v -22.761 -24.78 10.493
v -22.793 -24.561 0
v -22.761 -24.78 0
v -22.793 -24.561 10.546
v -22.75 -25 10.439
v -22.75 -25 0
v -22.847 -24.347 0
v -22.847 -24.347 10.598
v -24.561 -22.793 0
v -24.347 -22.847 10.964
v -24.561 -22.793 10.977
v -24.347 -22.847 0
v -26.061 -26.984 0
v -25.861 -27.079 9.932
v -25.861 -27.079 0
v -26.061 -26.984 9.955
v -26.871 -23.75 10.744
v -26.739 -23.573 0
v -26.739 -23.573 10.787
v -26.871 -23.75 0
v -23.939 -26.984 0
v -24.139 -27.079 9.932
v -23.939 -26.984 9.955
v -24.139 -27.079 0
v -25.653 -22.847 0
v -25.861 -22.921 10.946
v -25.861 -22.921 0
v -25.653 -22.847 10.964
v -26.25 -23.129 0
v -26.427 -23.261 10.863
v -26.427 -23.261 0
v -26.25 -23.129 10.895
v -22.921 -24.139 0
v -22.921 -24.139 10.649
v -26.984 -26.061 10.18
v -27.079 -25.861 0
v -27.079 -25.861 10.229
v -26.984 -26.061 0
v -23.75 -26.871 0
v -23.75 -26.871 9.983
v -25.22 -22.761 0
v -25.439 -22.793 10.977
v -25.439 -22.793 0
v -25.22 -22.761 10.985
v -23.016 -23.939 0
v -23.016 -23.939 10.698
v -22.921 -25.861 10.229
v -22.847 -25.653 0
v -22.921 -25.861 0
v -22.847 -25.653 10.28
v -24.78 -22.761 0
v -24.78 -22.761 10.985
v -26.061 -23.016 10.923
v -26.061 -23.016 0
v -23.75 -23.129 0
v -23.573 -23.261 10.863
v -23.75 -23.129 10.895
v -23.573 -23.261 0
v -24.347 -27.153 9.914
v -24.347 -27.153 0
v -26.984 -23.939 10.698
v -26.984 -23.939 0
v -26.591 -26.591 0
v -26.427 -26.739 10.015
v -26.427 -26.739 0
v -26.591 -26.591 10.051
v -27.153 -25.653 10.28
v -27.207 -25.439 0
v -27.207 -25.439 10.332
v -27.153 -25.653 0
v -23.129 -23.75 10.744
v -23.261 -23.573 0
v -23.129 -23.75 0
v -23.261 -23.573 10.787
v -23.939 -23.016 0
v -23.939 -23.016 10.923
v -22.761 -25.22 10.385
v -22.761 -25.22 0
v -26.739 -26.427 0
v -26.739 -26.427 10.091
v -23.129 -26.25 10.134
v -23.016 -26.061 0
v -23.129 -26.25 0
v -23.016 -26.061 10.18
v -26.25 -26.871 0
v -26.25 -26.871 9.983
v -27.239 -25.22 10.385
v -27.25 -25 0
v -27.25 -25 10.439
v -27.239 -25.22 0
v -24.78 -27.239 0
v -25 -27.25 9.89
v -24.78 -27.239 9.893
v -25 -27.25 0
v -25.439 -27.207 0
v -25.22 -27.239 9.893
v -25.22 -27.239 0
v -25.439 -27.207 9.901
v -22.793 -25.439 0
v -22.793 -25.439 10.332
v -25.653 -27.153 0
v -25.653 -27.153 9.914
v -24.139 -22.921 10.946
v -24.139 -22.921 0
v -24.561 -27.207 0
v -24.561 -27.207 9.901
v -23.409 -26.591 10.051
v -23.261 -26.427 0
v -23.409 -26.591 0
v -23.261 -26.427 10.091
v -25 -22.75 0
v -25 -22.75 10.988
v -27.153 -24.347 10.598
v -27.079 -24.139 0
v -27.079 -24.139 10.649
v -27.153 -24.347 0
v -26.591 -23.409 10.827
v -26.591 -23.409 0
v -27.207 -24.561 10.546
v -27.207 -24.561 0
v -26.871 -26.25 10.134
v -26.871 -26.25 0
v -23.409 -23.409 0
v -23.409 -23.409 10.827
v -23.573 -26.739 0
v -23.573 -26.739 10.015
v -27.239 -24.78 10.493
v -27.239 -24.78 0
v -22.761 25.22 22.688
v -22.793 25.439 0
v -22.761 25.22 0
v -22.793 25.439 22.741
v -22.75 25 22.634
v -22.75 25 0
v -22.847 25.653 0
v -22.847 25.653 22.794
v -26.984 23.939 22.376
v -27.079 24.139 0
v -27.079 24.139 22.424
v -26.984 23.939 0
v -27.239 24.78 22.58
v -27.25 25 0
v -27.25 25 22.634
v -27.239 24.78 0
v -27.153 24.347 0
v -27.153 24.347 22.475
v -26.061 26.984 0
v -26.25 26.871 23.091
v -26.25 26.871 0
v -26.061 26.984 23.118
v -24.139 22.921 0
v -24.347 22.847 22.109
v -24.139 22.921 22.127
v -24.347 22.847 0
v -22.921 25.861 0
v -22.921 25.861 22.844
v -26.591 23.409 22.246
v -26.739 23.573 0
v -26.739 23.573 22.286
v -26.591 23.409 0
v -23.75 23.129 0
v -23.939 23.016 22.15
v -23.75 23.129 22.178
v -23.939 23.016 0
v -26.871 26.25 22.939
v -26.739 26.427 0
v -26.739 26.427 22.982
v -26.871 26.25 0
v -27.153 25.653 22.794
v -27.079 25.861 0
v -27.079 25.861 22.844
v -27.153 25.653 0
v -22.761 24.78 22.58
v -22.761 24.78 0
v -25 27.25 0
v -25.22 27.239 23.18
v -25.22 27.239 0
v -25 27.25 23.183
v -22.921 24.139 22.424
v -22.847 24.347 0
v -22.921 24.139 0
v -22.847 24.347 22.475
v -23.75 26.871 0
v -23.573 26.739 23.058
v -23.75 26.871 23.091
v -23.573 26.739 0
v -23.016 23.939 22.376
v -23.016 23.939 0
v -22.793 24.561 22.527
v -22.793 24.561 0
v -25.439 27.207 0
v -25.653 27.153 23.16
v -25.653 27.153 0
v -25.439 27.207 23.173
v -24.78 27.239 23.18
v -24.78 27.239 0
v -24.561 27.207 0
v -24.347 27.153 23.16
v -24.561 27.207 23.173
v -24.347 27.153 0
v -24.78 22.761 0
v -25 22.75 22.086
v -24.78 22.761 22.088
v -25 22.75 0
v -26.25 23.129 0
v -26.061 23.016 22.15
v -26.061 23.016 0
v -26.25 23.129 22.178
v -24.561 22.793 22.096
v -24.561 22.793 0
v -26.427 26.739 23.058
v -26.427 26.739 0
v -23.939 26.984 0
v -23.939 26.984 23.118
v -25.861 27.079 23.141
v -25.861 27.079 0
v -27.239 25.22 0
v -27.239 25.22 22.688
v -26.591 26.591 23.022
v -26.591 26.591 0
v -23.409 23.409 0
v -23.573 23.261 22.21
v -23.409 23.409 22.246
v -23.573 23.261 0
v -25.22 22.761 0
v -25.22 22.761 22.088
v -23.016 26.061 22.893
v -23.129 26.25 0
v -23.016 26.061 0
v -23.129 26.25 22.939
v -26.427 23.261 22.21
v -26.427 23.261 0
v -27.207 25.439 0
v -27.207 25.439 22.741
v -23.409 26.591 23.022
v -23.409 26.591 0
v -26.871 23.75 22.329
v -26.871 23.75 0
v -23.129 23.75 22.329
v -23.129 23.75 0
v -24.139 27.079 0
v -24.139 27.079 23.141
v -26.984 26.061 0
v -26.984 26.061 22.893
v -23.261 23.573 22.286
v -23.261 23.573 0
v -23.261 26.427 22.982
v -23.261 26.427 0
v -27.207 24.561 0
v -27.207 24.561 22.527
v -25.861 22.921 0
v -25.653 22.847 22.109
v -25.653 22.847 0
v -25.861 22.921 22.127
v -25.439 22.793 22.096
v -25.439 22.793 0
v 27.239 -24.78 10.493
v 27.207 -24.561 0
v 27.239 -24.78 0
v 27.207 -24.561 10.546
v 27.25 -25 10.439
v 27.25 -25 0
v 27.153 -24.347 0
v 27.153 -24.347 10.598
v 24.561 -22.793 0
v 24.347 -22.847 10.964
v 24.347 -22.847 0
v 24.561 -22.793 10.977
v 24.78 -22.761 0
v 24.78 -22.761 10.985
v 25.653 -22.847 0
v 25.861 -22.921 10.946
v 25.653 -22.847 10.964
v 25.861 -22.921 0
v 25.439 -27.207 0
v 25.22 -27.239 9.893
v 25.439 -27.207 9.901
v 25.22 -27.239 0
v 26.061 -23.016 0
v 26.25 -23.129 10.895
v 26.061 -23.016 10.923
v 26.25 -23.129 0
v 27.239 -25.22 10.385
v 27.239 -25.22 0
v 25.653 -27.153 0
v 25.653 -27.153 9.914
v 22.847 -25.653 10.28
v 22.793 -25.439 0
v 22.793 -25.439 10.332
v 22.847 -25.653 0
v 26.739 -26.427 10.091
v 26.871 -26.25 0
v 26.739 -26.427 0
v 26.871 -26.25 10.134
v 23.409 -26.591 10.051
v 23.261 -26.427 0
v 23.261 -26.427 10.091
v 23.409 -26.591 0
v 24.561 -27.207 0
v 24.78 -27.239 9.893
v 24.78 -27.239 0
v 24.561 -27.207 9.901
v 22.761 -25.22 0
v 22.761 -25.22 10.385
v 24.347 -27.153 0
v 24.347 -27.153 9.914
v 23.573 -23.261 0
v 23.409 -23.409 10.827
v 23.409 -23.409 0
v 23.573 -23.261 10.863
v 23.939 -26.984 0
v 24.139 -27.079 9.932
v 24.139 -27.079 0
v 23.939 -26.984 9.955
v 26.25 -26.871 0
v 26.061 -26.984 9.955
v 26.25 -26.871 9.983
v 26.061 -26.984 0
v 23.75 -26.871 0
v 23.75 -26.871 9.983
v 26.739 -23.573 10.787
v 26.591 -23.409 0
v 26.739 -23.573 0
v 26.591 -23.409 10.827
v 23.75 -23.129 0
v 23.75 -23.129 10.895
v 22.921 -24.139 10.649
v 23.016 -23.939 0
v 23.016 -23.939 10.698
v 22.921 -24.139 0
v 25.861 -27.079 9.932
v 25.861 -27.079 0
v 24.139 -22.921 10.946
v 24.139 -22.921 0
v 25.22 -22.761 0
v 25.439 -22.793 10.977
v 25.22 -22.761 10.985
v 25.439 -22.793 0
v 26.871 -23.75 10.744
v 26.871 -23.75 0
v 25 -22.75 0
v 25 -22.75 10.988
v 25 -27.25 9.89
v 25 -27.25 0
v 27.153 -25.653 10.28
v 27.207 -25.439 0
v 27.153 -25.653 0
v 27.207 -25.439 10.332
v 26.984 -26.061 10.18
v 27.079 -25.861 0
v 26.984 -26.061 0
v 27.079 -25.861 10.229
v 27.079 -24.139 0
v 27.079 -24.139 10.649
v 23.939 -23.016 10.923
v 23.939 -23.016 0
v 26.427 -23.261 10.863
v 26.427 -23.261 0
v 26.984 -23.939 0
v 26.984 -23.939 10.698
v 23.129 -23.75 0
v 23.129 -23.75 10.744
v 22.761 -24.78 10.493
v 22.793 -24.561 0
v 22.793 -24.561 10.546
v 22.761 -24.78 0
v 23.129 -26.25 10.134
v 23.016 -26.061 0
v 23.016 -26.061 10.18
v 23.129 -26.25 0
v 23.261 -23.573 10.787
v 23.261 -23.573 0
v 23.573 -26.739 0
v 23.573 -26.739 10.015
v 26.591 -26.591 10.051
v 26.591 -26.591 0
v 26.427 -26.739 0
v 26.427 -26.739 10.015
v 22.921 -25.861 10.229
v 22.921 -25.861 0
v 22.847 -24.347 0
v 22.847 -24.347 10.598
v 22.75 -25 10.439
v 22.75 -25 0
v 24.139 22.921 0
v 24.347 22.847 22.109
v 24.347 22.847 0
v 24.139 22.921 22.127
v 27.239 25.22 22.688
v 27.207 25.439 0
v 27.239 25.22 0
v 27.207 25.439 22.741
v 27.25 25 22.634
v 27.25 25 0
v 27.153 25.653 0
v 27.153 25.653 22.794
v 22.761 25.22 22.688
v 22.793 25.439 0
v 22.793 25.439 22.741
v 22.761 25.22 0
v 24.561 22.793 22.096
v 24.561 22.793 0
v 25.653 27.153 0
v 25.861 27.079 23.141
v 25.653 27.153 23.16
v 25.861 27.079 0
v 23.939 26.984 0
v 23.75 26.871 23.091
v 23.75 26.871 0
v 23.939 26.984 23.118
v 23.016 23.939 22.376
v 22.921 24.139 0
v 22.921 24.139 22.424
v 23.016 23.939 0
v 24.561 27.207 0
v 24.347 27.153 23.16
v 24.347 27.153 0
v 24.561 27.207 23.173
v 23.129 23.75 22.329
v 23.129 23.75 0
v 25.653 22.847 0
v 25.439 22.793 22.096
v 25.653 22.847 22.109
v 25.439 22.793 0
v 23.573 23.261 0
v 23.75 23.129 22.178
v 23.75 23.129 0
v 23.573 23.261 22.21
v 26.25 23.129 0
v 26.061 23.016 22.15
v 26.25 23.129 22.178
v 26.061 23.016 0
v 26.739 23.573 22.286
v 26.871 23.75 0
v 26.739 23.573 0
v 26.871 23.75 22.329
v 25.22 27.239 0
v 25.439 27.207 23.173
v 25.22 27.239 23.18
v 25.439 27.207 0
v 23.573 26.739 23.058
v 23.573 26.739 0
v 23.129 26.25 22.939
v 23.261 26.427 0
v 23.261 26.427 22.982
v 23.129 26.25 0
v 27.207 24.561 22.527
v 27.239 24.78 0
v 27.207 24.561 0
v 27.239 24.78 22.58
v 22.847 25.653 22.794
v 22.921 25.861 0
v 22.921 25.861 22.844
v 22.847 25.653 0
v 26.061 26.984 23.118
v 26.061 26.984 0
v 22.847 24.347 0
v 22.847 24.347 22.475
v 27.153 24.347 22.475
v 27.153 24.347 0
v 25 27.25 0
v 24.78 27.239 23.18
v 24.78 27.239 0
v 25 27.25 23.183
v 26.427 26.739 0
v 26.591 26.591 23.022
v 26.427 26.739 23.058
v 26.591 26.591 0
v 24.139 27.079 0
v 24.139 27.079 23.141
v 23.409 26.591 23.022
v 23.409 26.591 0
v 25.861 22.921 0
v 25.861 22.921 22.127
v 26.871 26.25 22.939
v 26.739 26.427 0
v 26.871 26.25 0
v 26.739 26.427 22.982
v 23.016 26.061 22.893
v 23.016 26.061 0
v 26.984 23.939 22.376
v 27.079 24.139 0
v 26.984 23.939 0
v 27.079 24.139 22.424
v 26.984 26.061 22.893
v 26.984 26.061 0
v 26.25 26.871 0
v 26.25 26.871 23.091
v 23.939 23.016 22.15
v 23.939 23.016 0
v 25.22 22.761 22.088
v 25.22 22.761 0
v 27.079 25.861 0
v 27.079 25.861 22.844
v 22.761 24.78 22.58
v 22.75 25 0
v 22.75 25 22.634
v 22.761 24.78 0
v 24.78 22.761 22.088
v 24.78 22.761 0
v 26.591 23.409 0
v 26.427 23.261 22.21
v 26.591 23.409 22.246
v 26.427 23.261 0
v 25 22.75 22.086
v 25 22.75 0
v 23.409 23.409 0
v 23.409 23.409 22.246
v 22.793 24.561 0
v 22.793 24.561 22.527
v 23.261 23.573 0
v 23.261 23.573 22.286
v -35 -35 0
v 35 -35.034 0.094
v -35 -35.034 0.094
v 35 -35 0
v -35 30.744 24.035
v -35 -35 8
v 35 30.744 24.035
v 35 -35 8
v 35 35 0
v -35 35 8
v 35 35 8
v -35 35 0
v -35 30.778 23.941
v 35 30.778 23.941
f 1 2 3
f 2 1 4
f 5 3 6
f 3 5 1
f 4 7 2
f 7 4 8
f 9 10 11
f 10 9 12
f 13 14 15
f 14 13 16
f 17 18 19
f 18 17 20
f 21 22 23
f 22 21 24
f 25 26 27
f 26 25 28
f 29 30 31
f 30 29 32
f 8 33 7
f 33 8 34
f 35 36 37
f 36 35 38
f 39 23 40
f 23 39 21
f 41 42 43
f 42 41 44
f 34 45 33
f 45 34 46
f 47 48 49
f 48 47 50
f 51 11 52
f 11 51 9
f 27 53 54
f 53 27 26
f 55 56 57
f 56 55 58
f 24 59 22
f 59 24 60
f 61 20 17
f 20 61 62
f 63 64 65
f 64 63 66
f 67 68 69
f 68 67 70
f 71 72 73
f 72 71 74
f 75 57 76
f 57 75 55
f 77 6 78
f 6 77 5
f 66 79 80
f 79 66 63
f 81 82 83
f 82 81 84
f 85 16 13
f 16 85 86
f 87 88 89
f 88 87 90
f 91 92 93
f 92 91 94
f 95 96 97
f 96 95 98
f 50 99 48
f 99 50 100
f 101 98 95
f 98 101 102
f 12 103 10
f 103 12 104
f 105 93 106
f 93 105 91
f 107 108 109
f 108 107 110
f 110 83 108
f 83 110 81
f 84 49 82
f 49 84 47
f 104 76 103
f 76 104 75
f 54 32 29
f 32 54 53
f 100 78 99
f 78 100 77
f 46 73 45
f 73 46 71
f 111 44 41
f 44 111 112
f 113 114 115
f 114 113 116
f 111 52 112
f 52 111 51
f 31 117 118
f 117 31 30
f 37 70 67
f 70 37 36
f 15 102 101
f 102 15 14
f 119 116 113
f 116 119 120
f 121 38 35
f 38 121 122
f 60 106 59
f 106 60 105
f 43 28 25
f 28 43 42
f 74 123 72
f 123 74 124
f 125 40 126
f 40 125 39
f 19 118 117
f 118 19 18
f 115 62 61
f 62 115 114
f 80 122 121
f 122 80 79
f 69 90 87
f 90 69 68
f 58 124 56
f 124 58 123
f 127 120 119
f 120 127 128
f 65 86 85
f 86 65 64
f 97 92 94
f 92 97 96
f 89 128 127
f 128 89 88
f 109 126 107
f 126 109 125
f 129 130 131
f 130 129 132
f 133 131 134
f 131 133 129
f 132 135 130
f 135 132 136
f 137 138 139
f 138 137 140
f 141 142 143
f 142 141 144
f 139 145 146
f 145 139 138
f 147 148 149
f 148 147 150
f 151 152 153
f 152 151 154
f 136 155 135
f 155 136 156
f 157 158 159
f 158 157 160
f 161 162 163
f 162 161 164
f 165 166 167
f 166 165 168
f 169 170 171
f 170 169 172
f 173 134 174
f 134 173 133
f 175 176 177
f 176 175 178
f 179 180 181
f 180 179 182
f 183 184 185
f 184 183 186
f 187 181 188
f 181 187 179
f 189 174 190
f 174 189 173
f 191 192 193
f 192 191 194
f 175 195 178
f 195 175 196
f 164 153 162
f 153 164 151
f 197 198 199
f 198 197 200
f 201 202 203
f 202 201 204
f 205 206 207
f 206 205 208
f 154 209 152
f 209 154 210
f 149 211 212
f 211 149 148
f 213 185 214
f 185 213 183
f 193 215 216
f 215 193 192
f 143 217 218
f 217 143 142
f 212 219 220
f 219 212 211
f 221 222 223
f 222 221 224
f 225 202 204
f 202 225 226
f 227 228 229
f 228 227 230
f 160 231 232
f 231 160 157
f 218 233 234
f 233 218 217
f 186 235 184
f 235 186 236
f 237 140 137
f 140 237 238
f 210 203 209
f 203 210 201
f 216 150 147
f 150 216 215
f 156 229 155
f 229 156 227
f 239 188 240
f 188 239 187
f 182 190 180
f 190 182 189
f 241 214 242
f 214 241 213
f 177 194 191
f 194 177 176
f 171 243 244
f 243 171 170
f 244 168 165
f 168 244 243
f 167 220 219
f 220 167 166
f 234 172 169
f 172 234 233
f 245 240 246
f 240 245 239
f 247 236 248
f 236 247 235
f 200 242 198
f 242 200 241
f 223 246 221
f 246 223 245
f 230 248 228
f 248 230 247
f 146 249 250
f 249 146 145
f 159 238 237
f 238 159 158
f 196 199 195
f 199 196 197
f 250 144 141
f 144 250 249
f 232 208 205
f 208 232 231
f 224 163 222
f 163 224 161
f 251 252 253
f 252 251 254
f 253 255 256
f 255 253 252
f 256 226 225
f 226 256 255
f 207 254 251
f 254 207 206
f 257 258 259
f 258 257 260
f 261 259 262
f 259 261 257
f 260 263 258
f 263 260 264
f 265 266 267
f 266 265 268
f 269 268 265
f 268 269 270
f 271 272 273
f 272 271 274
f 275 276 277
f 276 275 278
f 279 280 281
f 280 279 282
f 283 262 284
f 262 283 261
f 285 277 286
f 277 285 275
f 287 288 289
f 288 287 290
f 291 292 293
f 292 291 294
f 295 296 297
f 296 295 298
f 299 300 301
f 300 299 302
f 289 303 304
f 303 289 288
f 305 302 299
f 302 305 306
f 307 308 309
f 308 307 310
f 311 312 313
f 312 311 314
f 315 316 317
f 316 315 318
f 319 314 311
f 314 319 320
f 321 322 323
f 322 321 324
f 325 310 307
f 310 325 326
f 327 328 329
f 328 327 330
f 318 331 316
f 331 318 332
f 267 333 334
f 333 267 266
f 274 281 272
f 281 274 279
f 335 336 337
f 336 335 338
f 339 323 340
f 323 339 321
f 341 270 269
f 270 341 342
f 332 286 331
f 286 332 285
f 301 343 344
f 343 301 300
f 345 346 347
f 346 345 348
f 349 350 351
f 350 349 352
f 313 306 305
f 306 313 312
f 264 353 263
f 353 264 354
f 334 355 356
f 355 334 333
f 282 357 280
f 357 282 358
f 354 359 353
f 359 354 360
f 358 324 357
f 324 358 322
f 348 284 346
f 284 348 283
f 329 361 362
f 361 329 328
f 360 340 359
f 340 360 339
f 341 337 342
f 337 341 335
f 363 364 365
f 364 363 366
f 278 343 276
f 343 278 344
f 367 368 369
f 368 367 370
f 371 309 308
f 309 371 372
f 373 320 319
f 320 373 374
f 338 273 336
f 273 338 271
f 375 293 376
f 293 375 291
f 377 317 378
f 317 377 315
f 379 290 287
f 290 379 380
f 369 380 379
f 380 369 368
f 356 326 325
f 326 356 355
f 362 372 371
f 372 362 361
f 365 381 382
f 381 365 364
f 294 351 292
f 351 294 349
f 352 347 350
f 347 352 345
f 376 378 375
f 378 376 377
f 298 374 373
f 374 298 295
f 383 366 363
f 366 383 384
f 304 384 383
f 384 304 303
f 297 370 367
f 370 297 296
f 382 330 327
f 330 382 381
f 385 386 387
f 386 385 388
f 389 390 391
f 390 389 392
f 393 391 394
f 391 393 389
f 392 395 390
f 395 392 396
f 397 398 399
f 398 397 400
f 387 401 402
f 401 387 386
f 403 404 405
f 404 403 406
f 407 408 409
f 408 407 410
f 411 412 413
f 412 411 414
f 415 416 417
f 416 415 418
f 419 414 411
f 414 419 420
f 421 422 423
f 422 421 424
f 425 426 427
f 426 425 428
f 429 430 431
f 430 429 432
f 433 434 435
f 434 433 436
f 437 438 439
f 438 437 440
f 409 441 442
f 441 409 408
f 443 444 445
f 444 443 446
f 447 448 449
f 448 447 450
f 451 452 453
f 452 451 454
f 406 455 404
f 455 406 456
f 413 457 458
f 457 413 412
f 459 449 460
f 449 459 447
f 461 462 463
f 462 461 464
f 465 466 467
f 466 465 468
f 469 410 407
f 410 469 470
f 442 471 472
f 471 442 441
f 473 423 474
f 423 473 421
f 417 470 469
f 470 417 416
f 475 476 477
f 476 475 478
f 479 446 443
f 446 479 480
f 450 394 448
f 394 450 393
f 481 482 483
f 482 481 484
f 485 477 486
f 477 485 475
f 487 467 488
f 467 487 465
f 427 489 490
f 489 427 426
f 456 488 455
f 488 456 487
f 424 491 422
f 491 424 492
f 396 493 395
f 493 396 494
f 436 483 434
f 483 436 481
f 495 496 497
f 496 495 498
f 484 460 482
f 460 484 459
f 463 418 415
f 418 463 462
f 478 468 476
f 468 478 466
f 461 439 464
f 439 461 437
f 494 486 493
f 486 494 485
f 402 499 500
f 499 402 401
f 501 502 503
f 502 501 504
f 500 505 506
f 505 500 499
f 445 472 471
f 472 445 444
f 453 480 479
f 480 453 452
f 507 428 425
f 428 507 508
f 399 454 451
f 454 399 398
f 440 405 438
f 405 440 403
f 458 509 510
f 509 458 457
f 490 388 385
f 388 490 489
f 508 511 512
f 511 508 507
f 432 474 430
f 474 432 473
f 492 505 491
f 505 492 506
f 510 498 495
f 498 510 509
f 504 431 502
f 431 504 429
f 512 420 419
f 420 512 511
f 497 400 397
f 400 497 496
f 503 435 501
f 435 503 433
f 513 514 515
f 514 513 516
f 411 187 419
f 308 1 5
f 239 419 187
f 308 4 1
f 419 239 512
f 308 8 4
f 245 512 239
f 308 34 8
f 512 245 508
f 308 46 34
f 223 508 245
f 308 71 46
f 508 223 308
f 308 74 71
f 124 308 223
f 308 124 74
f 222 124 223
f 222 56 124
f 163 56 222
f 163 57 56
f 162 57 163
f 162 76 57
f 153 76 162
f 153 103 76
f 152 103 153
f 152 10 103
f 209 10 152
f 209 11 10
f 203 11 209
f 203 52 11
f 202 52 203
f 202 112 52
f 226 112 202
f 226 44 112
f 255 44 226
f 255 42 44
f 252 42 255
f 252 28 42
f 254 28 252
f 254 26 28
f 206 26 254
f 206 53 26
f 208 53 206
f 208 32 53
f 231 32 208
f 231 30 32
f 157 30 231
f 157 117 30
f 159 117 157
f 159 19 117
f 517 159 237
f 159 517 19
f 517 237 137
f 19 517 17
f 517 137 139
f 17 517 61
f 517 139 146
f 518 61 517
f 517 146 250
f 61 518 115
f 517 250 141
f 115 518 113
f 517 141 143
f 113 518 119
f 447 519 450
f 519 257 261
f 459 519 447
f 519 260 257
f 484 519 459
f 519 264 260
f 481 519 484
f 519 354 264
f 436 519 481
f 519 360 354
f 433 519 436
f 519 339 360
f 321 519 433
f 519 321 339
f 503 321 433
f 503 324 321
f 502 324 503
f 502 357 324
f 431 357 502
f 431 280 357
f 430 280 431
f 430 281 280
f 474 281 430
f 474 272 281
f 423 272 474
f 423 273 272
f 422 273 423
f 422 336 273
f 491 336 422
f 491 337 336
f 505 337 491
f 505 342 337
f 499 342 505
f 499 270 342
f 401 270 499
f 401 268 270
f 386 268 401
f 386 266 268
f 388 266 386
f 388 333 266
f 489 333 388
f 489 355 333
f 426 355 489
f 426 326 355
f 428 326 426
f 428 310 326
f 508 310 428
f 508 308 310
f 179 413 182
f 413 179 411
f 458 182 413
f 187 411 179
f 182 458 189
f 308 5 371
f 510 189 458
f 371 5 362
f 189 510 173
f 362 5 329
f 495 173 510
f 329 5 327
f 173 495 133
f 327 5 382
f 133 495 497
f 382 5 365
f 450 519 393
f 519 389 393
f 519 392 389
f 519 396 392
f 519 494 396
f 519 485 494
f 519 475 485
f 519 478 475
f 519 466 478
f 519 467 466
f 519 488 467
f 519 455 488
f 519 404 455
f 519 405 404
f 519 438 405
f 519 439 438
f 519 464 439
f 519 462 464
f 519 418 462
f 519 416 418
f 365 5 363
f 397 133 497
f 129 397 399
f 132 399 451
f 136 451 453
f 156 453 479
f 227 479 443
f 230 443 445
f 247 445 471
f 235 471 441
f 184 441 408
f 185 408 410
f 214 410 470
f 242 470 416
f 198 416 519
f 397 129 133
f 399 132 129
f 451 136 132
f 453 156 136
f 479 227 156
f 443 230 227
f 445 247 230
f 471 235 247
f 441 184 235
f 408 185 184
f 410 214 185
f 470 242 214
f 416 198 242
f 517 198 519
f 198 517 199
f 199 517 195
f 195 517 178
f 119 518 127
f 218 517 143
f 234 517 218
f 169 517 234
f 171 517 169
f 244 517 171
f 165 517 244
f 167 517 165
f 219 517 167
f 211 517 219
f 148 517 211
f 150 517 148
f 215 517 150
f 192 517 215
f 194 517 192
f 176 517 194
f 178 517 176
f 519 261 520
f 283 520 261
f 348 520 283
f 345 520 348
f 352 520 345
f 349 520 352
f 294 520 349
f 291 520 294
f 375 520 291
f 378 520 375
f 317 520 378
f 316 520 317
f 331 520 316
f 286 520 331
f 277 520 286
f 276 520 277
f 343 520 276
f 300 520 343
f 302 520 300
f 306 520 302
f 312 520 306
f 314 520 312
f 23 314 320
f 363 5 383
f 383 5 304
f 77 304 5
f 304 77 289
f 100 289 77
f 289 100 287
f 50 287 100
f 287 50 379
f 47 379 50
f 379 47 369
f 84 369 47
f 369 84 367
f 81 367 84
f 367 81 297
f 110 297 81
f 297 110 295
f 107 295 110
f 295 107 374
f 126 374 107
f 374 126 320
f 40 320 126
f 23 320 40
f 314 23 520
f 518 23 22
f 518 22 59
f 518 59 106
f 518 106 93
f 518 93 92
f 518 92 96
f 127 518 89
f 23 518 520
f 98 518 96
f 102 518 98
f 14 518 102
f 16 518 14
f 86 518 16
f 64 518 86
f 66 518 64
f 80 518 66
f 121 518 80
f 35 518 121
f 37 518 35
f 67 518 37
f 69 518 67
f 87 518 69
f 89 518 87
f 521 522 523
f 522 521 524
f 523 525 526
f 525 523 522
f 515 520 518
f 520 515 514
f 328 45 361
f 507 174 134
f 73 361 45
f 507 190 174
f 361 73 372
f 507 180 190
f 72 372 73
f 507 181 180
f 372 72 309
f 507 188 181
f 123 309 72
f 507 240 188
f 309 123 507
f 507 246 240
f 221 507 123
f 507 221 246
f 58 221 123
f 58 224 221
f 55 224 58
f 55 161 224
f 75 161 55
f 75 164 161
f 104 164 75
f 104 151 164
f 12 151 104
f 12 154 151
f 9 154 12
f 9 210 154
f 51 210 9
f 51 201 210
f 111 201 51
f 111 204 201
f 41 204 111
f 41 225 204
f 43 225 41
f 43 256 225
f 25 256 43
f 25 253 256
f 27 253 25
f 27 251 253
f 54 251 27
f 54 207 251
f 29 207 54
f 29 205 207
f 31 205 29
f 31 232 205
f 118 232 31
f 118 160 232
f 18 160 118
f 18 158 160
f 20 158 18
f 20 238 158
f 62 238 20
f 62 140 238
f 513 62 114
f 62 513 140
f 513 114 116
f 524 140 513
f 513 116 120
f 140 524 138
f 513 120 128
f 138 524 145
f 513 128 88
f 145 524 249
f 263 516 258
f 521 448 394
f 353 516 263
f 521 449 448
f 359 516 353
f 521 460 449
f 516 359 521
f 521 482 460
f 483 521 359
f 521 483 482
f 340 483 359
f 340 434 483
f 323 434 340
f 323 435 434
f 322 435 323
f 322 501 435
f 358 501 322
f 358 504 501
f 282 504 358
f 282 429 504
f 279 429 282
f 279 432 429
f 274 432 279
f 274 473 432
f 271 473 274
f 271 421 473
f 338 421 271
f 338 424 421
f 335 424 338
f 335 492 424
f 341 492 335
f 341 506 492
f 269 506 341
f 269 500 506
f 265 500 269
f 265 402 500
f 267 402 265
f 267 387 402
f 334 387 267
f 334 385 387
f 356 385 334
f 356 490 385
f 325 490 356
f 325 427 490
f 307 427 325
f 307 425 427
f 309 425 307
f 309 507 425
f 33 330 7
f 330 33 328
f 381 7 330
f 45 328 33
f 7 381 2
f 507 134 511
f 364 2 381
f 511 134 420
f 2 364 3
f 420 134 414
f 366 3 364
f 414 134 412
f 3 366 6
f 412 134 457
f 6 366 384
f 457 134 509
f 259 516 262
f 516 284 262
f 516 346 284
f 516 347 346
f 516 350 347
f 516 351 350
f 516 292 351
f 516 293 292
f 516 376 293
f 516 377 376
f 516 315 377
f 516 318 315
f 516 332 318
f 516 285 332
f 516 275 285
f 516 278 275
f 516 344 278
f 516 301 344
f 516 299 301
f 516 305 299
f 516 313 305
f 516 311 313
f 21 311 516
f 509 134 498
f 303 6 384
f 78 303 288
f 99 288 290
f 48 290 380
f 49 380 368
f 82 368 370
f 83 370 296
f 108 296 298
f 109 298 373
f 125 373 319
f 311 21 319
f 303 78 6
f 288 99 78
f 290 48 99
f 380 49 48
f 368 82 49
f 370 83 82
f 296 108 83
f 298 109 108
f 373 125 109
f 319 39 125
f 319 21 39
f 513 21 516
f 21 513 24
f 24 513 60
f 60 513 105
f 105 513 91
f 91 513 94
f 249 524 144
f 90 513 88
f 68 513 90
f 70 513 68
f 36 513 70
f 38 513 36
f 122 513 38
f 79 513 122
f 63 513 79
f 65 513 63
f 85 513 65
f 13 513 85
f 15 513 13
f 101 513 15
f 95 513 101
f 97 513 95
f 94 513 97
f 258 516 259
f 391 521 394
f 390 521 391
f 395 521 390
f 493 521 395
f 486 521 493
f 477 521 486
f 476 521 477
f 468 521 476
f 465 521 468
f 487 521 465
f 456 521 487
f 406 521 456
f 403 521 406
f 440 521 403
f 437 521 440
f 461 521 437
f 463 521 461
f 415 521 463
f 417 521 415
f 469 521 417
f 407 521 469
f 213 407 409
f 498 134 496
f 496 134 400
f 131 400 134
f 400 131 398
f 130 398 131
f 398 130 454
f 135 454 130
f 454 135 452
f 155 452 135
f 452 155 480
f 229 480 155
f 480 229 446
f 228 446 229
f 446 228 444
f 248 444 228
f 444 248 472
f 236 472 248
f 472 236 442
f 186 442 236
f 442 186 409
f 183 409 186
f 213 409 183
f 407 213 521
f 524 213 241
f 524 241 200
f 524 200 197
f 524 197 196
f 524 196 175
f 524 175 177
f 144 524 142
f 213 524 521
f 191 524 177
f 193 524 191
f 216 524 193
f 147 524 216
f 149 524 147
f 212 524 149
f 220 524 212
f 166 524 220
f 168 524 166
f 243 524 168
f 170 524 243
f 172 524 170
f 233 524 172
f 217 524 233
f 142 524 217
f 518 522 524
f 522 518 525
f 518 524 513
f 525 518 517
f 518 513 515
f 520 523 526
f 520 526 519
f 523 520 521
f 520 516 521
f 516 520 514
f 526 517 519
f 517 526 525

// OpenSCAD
// file: common.scad
// KARAKURI shared parameters and helpers
// All dimensions in millimetres. Holes are printed undersize-safe:
// M3 through 3.4, M4 through 4.5, M2.5 through 2.9, quarter-inch 6.6.

$fn = 64;

m2_5 = 2.9;
m3 = 3.4;
m4 = 4.5;
quarter_inch = 6.6;

module rounded_plate(x, y, t, r = 8) {
    linear_extrude(t)
        offset(r = r) offset(delta = -r)
            square([x, y], center = true);
}

module hole(d, h) {
    translate([0, 0, -0.5]) cylinder(d = d, h = h + 1);
}

module slot(d, len, h) {
    translate([0, 0, -0.5])
        linear_extrude(h + 1)
            hull() {
                translate([-len / 2, 0]) circle(d = d);
                translate([ len / 2, 0]) circle(d = d);
            }
}

module four_holes(dx, dy, d, h) {
    for (sx = [-1, 1], sy = [-1, 1])
        translate([sx * dx / 2, sy * dy / 2, 0]) hole(d, h);
}
// main file
// 20 degree tilt wedge between the mast top flange and the camera
// cradle or plate. Tilts the sensor down so the floor 0.5 to 2.0 m
// ahead fills the depth frame. Through holes both faces, 4 x M4.
// Print with the thick end down, no supports.

include <common.scad>

base = 70;
angle = 20;
min_t = 8;

module tilt_wedge() {
    difference() {
        // Wedge body
        hull() {
            linear_extrude(min_t) square([base, base], center = true);
            translate([0, -base / 2, 0])
                rotate([angle, 0, 0])
                    linear_extrude(0.1)
                        translate([0, base / 2]) square([base, base], center = true);
        }
        // Vertical bolt holes through everything
        four_holes(50, 50, m4, base);
    }
}

tilt_wedge();
